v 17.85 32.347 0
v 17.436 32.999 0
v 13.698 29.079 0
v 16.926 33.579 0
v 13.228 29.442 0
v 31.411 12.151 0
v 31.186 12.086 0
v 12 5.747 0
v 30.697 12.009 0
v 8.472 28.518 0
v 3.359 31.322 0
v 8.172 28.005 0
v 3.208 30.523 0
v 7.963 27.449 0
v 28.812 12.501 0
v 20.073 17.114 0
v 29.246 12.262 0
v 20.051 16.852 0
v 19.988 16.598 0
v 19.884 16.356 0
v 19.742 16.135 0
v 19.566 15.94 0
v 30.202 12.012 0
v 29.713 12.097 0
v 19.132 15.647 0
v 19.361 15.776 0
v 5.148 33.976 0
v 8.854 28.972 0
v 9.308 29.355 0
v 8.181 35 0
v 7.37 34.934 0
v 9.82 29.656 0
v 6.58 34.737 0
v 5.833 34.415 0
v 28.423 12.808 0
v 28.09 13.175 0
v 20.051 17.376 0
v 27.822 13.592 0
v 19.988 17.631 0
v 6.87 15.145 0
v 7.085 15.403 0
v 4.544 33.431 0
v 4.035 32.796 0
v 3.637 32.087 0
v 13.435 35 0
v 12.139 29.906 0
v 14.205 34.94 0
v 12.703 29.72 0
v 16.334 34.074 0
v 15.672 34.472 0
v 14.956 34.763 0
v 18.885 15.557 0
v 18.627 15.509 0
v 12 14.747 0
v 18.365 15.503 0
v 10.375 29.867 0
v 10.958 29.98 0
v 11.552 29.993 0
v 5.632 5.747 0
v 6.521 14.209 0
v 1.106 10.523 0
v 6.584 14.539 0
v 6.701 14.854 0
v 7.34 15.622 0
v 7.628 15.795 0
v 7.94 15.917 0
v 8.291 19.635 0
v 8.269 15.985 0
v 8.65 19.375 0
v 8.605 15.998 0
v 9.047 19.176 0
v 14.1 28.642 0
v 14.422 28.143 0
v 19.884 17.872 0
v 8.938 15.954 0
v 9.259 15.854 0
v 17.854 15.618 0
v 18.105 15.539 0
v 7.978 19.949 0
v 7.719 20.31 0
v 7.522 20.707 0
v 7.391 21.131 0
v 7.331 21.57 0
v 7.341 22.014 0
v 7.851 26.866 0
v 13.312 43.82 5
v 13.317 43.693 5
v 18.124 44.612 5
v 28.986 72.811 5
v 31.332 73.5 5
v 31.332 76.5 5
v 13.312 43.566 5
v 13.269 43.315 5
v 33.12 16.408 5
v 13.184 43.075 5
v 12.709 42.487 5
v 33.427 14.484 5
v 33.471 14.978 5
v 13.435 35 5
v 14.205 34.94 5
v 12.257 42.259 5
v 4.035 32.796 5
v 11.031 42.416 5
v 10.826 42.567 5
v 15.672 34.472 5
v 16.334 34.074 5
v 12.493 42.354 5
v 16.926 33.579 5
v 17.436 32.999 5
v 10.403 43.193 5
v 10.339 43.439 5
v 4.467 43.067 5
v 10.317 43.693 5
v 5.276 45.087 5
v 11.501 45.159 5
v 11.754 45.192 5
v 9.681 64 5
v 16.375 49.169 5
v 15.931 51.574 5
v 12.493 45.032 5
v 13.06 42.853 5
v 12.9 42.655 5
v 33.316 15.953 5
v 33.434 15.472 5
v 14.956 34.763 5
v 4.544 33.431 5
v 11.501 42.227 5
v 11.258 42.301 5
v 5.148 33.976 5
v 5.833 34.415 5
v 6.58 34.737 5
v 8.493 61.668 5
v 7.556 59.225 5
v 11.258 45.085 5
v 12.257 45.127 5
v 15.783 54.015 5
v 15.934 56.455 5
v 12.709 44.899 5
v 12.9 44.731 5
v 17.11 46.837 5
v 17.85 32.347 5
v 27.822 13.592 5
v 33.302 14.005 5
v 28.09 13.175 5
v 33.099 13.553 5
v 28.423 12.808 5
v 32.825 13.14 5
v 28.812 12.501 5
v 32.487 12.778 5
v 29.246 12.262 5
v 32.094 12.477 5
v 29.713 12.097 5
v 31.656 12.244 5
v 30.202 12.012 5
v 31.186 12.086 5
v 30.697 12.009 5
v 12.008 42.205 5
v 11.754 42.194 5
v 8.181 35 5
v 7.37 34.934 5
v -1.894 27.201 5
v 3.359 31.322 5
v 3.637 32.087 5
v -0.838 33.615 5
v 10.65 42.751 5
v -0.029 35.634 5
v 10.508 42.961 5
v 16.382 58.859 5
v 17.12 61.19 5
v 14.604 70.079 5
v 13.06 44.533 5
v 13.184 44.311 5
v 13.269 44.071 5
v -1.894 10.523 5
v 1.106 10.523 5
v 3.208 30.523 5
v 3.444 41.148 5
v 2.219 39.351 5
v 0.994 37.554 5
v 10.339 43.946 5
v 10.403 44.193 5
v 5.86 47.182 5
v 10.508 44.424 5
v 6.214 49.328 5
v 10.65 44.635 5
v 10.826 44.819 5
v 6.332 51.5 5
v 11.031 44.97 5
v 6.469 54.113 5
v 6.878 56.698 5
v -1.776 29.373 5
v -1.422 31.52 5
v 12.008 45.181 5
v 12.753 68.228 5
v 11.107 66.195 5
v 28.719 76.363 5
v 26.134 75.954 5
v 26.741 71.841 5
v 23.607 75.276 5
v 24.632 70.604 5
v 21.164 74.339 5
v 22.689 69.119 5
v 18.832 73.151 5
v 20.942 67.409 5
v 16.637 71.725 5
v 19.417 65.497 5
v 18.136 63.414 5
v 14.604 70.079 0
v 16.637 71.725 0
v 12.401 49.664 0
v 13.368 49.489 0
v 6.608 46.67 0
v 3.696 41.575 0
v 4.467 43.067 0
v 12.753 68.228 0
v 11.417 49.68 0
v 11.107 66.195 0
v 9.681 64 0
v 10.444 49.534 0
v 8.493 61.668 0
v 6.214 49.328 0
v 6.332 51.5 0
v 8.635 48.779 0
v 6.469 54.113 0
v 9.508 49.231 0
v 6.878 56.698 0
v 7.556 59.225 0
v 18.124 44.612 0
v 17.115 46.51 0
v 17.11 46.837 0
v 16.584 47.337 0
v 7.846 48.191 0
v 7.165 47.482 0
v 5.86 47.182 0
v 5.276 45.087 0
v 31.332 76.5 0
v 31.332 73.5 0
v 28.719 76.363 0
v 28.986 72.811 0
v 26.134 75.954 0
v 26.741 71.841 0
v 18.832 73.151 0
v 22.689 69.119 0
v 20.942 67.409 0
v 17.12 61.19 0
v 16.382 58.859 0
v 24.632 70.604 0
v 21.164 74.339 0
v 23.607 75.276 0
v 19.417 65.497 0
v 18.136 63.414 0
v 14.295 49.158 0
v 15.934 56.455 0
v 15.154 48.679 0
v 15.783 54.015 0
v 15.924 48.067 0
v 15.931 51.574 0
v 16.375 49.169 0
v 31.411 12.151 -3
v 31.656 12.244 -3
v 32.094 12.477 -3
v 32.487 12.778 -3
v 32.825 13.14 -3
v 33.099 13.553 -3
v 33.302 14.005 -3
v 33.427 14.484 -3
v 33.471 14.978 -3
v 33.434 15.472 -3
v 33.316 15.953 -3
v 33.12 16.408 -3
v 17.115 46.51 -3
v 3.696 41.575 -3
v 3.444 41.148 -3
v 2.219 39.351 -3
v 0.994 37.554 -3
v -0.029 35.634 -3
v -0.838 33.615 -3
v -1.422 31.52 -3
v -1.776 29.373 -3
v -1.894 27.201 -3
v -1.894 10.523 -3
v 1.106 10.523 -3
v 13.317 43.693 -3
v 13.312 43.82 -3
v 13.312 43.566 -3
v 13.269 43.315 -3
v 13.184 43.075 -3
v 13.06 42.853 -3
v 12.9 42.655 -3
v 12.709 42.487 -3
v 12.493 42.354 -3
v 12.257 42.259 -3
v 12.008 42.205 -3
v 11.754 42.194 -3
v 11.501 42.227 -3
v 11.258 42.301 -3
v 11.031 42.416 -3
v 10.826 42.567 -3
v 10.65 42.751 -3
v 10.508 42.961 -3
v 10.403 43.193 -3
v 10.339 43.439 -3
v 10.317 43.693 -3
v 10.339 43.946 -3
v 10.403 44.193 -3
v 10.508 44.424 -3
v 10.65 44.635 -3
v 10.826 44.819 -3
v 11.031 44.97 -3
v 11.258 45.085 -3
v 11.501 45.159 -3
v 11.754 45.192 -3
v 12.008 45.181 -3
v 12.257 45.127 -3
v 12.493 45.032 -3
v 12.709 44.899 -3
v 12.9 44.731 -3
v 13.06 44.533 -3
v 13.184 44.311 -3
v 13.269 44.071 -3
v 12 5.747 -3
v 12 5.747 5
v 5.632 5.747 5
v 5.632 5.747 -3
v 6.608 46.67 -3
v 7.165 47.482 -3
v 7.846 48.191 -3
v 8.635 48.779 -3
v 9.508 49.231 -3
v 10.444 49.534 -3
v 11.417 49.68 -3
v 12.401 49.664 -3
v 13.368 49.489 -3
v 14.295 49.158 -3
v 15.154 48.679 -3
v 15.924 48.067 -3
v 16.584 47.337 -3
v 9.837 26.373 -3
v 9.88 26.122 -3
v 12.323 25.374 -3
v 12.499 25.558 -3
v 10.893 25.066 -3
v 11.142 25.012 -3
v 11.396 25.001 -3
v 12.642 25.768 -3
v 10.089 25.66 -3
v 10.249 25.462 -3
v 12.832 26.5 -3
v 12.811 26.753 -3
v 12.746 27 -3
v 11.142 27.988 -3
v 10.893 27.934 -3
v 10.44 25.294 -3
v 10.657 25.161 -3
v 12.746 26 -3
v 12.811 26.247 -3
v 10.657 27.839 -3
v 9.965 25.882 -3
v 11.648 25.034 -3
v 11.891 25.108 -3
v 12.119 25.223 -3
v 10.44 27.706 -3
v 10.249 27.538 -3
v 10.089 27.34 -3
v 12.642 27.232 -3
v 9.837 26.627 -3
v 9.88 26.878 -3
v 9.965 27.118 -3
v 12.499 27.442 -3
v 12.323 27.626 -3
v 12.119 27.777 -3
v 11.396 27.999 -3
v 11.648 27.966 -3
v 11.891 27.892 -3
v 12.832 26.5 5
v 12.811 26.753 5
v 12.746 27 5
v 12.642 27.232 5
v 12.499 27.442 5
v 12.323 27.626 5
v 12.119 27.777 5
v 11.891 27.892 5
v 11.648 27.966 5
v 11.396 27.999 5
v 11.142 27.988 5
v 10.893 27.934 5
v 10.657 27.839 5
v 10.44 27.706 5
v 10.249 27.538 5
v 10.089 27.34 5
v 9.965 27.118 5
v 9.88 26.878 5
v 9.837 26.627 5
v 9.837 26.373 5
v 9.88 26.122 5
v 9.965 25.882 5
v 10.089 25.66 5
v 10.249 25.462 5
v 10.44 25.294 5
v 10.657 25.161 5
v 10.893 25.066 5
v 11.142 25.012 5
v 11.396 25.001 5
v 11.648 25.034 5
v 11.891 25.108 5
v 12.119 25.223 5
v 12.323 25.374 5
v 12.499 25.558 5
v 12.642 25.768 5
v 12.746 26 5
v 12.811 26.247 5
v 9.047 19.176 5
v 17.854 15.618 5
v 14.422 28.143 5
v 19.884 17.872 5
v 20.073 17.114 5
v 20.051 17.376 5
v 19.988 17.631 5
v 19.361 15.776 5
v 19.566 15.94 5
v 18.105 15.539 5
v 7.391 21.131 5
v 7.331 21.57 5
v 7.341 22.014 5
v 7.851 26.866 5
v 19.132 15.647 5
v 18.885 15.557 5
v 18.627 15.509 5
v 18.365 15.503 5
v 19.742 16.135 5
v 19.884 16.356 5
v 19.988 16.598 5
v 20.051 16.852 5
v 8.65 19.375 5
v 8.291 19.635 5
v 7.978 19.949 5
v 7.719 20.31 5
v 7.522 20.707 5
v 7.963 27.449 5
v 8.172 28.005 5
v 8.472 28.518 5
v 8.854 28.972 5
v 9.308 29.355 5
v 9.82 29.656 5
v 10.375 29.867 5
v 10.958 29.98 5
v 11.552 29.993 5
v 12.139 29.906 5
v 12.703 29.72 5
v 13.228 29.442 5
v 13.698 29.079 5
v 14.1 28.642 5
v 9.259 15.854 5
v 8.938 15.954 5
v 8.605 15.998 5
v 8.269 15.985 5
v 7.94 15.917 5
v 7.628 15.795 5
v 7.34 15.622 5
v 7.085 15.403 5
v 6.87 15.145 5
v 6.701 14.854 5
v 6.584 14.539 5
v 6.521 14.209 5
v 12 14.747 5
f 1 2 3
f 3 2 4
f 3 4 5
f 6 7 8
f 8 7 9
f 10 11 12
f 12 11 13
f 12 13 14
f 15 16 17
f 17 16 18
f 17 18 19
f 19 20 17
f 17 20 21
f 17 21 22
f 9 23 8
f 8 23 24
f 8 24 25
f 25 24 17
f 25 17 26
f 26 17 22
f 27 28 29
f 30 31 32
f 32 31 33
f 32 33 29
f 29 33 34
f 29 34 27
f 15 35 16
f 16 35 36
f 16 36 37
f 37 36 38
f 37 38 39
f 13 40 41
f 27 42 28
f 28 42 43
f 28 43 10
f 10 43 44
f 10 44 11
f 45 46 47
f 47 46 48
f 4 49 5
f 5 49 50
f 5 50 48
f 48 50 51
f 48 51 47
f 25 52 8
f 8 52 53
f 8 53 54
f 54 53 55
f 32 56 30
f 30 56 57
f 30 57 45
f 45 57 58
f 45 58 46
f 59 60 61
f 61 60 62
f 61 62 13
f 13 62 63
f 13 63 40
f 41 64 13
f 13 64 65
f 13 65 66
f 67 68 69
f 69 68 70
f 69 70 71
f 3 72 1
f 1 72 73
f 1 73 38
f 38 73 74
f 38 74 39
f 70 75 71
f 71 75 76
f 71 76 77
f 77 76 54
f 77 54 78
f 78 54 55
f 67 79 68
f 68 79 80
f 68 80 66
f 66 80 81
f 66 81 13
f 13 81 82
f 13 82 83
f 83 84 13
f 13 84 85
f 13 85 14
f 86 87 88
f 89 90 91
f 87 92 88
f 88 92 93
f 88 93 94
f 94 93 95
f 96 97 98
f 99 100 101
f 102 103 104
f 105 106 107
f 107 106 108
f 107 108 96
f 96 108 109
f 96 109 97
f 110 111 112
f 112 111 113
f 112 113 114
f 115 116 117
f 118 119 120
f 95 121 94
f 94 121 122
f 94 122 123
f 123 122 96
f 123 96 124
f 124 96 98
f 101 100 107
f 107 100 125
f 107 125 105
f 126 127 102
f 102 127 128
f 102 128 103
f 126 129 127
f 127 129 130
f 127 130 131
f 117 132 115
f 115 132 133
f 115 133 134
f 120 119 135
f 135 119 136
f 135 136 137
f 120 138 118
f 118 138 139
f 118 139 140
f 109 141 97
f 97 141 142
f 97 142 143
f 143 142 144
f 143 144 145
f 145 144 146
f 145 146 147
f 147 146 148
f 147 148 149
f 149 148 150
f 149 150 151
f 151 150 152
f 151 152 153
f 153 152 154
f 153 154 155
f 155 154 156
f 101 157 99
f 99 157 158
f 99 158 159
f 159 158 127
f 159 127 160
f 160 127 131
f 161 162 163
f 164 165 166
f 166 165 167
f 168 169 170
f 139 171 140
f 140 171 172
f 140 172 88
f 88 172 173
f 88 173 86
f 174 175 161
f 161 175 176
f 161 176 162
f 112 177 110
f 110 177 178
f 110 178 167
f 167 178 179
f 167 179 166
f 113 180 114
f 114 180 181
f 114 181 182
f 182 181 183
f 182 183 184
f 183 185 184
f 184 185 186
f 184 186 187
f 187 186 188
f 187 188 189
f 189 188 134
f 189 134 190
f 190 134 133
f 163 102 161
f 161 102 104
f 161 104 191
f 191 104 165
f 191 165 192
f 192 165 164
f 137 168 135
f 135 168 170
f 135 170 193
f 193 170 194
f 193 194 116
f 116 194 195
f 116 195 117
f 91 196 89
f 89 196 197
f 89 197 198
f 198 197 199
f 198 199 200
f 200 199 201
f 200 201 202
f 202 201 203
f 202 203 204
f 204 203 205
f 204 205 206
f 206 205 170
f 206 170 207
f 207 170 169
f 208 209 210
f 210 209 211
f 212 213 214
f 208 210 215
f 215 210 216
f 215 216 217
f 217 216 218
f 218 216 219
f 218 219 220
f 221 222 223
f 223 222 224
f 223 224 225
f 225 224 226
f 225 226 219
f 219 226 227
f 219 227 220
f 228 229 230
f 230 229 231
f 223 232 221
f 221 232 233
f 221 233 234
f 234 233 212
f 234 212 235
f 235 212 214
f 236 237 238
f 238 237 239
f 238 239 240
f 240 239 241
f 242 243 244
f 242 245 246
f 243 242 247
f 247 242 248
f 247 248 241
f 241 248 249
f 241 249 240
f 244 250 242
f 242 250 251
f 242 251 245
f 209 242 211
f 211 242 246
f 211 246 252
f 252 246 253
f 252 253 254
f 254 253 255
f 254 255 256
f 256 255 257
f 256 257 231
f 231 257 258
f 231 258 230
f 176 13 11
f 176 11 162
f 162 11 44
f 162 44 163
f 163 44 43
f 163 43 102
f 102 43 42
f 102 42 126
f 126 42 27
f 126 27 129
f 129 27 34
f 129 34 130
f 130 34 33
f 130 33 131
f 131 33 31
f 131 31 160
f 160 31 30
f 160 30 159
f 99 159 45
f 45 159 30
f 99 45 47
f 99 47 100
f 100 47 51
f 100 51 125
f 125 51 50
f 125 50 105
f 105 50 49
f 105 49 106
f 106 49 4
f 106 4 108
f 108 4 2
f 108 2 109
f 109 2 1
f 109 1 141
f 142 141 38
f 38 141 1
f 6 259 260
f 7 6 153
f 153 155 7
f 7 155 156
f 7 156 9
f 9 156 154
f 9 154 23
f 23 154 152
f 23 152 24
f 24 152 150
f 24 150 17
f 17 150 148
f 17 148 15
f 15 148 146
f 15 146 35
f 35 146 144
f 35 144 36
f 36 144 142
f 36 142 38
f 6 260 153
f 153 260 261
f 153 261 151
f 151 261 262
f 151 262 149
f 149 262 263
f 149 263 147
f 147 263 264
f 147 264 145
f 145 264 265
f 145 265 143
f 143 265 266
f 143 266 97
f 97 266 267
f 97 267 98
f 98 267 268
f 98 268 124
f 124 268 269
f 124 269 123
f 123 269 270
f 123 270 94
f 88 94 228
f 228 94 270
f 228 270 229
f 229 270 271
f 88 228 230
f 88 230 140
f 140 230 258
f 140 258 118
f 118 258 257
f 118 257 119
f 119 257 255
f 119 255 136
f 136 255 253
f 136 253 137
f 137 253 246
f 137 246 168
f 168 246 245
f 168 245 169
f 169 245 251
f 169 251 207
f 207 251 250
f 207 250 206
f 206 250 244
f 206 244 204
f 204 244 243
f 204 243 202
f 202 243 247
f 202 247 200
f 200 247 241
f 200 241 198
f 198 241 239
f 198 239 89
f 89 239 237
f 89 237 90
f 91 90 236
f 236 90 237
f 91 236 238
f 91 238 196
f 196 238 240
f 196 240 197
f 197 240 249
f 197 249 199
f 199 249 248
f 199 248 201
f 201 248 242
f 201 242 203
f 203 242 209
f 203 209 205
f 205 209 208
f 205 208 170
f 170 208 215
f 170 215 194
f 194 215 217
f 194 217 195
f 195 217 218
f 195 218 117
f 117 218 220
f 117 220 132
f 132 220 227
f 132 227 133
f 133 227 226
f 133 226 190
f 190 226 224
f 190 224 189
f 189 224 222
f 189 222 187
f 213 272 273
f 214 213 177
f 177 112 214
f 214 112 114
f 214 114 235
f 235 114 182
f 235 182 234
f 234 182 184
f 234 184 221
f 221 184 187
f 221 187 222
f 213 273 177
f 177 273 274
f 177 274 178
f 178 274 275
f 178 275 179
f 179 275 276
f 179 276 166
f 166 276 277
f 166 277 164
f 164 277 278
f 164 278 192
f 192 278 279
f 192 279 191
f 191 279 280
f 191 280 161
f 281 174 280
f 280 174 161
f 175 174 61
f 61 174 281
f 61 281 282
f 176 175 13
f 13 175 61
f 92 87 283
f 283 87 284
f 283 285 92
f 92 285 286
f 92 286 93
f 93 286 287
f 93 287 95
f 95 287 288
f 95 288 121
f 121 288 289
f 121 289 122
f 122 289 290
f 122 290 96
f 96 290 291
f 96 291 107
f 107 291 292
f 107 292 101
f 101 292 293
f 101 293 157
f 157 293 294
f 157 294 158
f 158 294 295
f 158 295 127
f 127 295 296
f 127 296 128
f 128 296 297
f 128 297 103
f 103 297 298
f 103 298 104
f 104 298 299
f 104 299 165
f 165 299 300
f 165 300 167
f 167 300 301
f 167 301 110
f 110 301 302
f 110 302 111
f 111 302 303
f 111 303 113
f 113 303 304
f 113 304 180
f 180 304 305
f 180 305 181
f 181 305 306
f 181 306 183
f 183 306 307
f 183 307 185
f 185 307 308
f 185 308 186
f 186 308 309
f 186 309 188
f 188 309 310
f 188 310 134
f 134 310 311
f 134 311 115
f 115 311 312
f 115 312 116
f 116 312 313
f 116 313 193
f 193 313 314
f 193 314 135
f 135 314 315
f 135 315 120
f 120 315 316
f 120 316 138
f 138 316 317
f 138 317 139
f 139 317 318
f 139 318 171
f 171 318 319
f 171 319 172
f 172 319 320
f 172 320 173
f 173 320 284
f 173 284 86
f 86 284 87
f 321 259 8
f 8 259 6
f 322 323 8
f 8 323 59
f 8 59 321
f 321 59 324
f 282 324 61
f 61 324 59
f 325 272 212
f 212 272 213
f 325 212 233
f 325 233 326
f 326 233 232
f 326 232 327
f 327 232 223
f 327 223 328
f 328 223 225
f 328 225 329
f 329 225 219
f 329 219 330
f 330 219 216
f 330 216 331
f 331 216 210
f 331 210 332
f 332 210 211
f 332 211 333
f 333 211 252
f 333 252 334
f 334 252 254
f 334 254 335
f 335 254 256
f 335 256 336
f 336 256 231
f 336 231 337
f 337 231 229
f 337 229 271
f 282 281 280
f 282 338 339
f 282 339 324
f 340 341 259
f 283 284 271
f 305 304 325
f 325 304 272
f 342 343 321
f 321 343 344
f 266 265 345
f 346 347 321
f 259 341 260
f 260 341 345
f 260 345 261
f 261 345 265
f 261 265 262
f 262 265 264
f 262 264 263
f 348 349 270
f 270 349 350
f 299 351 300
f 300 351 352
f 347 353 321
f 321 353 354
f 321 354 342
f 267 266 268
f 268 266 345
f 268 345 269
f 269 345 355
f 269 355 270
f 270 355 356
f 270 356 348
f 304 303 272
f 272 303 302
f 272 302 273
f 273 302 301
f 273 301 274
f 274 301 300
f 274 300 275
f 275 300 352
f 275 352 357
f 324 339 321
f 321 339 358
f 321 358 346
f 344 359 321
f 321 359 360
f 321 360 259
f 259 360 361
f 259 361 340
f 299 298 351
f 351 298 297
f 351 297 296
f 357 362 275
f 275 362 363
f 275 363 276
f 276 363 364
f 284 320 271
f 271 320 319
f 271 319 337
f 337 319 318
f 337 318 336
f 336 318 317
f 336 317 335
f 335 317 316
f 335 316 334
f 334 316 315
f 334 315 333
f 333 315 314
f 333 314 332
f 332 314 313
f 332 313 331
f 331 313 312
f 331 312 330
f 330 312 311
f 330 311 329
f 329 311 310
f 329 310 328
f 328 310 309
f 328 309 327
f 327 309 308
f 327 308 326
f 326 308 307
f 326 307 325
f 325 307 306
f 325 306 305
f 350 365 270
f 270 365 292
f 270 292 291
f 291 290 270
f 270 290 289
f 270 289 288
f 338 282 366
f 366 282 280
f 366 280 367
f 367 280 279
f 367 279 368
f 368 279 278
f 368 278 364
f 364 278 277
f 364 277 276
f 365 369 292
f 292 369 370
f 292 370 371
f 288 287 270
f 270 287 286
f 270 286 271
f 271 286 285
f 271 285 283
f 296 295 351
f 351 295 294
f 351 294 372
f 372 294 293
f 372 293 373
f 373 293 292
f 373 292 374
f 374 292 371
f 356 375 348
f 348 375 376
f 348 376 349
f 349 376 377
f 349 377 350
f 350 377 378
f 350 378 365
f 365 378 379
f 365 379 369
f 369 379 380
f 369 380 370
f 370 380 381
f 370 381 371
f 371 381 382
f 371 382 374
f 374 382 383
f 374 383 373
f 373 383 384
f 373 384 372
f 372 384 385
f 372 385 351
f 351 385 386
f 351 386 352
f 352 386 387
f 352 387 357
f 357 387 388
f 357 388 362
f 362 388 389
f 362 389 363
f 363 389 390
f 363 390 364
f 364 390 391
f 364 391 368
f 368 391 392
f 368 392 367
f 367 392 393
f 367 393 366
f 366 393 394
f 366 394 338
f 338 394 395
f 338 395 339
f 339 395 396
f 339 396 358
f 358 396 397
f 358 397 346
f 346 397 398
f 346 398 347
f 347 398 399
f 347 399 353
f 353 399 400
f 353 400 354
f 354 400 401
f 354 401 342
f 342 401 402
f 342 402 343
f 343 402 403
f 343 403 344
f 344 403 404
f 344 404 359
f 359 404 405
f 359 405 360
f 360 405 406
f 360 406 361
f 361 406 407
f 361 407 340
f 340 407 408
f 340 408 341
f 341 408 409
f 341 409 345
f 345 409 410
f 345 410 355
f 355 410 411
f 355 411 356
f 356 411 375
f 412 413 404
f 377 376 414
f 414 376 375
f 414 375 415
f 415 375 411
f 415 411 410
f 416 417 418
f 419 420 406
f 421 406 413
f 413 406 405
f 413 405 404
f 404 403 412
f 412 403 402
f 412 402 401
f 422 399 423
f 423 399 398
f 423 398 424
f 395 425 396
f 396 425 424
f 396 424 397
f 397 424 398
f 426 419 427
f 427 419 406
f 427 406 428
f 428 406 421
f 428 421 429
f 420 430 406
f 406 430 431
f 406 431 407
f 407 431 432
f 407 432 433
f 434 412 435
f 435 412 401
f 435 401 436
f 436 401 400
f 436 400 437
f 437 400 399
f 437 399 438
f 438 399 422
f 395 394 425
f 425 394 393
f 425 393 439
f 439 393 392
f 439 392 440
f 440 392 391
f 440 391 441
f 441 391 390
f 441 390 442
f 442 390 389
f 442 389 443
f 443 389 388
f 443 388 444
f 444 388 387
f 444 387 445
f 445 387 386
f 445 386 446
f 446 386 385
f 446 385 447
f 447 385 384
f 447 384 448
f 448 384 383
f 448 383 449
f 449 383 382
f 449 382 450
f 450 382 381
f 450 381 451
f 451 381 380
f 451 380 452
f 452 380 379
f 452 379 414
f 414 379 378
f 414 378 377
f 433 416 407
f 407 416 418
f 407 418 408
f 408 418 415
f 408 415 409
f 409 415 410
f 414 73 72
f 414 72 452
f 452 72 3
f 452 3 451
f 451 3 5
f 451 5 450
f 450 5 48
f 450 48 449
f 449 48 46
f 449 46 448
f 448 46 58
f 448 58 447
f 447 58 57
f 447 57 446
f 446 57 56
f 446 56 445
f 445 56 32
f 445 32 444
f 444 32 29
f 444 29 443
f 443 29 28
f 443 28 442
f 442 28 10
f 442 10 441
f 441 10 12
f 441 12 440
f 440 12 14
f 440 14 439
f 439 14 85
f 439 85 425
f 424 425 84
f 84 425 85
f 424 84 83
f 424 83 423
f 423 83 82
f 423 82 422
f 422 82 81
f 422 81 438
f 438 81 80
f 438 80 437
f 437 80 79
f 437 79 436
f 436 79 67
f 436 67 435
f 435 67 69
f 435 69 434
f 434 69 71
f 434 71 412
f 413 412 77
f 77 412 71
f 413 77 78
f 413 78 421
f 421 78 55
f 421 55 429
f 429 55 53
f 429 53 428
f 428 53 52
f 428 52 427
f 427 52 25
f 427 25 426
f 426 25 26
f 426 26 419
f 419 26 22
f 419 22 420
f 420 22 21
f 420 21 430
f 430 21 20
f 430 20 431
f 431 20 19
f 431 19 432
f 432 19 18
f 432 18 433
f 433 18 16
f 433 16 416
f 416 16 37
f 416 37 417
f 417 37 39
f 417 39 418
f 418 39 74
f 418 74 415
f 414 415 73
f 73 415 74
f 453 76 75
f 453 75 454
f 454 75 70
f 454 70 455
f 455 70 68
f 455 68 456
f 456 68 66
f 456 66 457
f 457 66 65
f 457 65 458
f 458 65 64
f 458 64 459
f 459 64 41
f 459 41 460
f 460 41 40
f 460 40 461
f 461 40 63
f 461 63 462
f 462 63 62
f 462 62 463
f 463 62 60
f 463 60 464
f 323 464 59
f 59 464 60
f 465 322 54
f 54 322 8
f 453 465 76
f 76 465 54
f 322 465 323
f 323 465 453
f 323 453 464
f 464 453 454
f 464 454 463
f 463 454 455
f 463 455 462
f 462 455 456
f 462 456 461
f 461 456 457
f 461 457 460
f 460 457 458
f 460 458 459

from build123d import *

# Parameters (mm, degrees)
CROQUIS4_R                = 1.5
SALIENTE_EXTRUIR1_DEPTH   = 5
SALIENTE_EXTRUIR1_2_DEPTH = 5
SALIENTE_EXTRUIR1_3_DEPTH = 5
SALIENTE_EXTRUIR2_START   = -3
CROQUIS5_R                = 1.5
SALIENTE_EXTRUIR2_DEPTH   = 3


with BuildPart() as part:
    # Croquis4 → Saliente-Extruir1 (new body)
    with BuildSketch(Plane.XY):
        with BuildLine():
            Line((31.332082611, 76.5), (31.332082611, 73.5))
            ThreePointArc((31.332082611, 73.5), (17.593960897, 62.317888205), (18.123970441, 44.612106598))
            Line((18.123970441, 44.612106598), (33.120139436, 16.408414688))
            ThreePointArc((33.120139436, 16.408414688), (31.879711346, 12.351157221), (27.822453879, 13.591585312))
            Line((27.822453879, 13.591585312), (17.849832742, 32.347357814))
            ThreePointArc((17.849832742, 32.347357814), (16.010285152, 34.285836504), (13.435094777, 35))
            Line((13.435094777, 35), (8.180668456, 35))
            ThreePointArc((8.180668456, 35), (4.835015424, 33.715724127), (3.208058979, 30.522642316))
            Line((3.208058979, 30.522642316), (1.105974274, 10.522642316))
            Line((1.105974274, 10.522642316), (-1.894025726, 10.522642316))
            Line((-1.894025726, 10.522642316), (-1.894025726, 27.20144431))
            ThreePointArc((-1.894025726, 27.20144431), (-0.837875871, 33.61475404), (2.219028442, 39.350722155))
            ThreePointArc((2.219028442, 39.350722155), (5.275932756, 45.086690271), (6.332082611, 51.5))
            ThreePointArc((6.332082611, 51.5), (13.654413081, 69.17766953), (31.332082611, 76.5))
        make_face()
        with Locations((11.817302712, 43.692896695)):
            Circle(CROQUIS4_R, mode=Mode.SUBTRACT)
    extrude(amount=SALIENTE_EXTRUIR1_DEPTH)



with BuildPart() as body_2:
    # Croquis4 → Saliente-Extruir1 2 (new body)
    with BuildSketch(Plane.XY):
        with BuildLine():
            Line((7.851255977, 26.865849621), (7.341304596, 22.013986331))
            ThreePointArc((7.341304596, 22.013986331), (7.719149951, 20.309636075), (9.046614258, 19.17587445))
            Line((9.046614258, 19.17587445), (17.853810231, 15.617536301))
            ThreePointArc((17.853810231, 15.617536301), (19.658030518, 16.034073375), (19.883693385, 17.871949935))
            Line((19.883693385, 17.871949935), (14.422399186, 28.14315047))
            ThreePointArc((14.422399186, 28.14315047), (10.664251127, 29.935695142), (7.851255977, 26.865849621))
        make_face()
        with Locations((11.332082611, 26.5)):
            Circle(CROQUIS4_R, mode=Mode.SUBTRACT)
    extrude(amount=SALIENTE_EXTRUIR1_2_DEPTH)


with BuildPart() as body_3:
    # Croquis4 → Saliente-Extruir1 3 (new body)
    with BuildSketch(Plane.XY):
        with BuildLine():
            Line((6.52097346, 14.209056927), (5.631578058, 5.747024927))
            Line((5.631578058, 5.747024927), (12, 5.747024927))
            Line((12, 5.747024927), (12, 14.747024927))
            Line((12, 14.747024927), (9.259230437, 15.854367709))
            ThreePointArc((9.259230437, 15.854367709), (7.479941101, 15.714334601), (6.52097346, 14.209056927))
        make_face()
    extrude(amount=SALIENTE_EXTRUIR1_3_DEPTH)


with BuildPart() as part_1:
    add(part.part)

    add(body_2.part)  # Saliente-Extruir2 merges body 2

    add(body_3.part)  # Saliente-Extruir2 merges body 3
    # Croquis5 → Saliente-Extruir2 (add)
    with BuildSketch(Plane.XY.offset(SALIENTE_EXTRUIR2_START)):
        with BuildLine():
            Line((12, 5.747024927), (31.411206338, 12.151040577))
            ThreePointArc((31.411206338, 12.151040577), (33.255375434, 13.882455653), (33.120139436, 16.408414688))
            Line((33.120139436, 16.408414688), (17.114988269, 46.509726071))
            ThreePointArc((17.114988269, 46.509726071), (11.909057427, 49.692195076), (6.608237363, 46.670418851))
            Line((6.608237363, 46.670418851), (3.695633773, 41.574926144))
            ThreePointArc((3.695633773, 41.574926144), (2.994485151, 40.43815831), (2.219028442, 39.350722155))
            ThreePointArc((2.219028442, 39.350722155), (-0.837875871, 33.61475404), (-1.894025726, 27.20144431))
            Line((-1.894025726, 27.20144431), (-1.894025726, 10.522642316))
            Line((-1.894025726, 10.522642316), (1.105974274, 10.522642316))
            Line((1.105974274, 10.522642316), (5.631578058, 5.747024927))
            Line((5.631578058, 5.747024927), (12, 5.747024927))
        make_face()
        with Locations((11.332082611, 26.5)):
            Circle(CROQUIS5_R, mode=Mode.SUBTRACT)
        with Locations((11.817302712, 43.692896695)):
            Circle(CROQUIS5_R, mode=Mode.SUBTRACT)
    extrude(amount=SALIENTE_EXTRUIR2_DEPTH)


solid = part_1.part
